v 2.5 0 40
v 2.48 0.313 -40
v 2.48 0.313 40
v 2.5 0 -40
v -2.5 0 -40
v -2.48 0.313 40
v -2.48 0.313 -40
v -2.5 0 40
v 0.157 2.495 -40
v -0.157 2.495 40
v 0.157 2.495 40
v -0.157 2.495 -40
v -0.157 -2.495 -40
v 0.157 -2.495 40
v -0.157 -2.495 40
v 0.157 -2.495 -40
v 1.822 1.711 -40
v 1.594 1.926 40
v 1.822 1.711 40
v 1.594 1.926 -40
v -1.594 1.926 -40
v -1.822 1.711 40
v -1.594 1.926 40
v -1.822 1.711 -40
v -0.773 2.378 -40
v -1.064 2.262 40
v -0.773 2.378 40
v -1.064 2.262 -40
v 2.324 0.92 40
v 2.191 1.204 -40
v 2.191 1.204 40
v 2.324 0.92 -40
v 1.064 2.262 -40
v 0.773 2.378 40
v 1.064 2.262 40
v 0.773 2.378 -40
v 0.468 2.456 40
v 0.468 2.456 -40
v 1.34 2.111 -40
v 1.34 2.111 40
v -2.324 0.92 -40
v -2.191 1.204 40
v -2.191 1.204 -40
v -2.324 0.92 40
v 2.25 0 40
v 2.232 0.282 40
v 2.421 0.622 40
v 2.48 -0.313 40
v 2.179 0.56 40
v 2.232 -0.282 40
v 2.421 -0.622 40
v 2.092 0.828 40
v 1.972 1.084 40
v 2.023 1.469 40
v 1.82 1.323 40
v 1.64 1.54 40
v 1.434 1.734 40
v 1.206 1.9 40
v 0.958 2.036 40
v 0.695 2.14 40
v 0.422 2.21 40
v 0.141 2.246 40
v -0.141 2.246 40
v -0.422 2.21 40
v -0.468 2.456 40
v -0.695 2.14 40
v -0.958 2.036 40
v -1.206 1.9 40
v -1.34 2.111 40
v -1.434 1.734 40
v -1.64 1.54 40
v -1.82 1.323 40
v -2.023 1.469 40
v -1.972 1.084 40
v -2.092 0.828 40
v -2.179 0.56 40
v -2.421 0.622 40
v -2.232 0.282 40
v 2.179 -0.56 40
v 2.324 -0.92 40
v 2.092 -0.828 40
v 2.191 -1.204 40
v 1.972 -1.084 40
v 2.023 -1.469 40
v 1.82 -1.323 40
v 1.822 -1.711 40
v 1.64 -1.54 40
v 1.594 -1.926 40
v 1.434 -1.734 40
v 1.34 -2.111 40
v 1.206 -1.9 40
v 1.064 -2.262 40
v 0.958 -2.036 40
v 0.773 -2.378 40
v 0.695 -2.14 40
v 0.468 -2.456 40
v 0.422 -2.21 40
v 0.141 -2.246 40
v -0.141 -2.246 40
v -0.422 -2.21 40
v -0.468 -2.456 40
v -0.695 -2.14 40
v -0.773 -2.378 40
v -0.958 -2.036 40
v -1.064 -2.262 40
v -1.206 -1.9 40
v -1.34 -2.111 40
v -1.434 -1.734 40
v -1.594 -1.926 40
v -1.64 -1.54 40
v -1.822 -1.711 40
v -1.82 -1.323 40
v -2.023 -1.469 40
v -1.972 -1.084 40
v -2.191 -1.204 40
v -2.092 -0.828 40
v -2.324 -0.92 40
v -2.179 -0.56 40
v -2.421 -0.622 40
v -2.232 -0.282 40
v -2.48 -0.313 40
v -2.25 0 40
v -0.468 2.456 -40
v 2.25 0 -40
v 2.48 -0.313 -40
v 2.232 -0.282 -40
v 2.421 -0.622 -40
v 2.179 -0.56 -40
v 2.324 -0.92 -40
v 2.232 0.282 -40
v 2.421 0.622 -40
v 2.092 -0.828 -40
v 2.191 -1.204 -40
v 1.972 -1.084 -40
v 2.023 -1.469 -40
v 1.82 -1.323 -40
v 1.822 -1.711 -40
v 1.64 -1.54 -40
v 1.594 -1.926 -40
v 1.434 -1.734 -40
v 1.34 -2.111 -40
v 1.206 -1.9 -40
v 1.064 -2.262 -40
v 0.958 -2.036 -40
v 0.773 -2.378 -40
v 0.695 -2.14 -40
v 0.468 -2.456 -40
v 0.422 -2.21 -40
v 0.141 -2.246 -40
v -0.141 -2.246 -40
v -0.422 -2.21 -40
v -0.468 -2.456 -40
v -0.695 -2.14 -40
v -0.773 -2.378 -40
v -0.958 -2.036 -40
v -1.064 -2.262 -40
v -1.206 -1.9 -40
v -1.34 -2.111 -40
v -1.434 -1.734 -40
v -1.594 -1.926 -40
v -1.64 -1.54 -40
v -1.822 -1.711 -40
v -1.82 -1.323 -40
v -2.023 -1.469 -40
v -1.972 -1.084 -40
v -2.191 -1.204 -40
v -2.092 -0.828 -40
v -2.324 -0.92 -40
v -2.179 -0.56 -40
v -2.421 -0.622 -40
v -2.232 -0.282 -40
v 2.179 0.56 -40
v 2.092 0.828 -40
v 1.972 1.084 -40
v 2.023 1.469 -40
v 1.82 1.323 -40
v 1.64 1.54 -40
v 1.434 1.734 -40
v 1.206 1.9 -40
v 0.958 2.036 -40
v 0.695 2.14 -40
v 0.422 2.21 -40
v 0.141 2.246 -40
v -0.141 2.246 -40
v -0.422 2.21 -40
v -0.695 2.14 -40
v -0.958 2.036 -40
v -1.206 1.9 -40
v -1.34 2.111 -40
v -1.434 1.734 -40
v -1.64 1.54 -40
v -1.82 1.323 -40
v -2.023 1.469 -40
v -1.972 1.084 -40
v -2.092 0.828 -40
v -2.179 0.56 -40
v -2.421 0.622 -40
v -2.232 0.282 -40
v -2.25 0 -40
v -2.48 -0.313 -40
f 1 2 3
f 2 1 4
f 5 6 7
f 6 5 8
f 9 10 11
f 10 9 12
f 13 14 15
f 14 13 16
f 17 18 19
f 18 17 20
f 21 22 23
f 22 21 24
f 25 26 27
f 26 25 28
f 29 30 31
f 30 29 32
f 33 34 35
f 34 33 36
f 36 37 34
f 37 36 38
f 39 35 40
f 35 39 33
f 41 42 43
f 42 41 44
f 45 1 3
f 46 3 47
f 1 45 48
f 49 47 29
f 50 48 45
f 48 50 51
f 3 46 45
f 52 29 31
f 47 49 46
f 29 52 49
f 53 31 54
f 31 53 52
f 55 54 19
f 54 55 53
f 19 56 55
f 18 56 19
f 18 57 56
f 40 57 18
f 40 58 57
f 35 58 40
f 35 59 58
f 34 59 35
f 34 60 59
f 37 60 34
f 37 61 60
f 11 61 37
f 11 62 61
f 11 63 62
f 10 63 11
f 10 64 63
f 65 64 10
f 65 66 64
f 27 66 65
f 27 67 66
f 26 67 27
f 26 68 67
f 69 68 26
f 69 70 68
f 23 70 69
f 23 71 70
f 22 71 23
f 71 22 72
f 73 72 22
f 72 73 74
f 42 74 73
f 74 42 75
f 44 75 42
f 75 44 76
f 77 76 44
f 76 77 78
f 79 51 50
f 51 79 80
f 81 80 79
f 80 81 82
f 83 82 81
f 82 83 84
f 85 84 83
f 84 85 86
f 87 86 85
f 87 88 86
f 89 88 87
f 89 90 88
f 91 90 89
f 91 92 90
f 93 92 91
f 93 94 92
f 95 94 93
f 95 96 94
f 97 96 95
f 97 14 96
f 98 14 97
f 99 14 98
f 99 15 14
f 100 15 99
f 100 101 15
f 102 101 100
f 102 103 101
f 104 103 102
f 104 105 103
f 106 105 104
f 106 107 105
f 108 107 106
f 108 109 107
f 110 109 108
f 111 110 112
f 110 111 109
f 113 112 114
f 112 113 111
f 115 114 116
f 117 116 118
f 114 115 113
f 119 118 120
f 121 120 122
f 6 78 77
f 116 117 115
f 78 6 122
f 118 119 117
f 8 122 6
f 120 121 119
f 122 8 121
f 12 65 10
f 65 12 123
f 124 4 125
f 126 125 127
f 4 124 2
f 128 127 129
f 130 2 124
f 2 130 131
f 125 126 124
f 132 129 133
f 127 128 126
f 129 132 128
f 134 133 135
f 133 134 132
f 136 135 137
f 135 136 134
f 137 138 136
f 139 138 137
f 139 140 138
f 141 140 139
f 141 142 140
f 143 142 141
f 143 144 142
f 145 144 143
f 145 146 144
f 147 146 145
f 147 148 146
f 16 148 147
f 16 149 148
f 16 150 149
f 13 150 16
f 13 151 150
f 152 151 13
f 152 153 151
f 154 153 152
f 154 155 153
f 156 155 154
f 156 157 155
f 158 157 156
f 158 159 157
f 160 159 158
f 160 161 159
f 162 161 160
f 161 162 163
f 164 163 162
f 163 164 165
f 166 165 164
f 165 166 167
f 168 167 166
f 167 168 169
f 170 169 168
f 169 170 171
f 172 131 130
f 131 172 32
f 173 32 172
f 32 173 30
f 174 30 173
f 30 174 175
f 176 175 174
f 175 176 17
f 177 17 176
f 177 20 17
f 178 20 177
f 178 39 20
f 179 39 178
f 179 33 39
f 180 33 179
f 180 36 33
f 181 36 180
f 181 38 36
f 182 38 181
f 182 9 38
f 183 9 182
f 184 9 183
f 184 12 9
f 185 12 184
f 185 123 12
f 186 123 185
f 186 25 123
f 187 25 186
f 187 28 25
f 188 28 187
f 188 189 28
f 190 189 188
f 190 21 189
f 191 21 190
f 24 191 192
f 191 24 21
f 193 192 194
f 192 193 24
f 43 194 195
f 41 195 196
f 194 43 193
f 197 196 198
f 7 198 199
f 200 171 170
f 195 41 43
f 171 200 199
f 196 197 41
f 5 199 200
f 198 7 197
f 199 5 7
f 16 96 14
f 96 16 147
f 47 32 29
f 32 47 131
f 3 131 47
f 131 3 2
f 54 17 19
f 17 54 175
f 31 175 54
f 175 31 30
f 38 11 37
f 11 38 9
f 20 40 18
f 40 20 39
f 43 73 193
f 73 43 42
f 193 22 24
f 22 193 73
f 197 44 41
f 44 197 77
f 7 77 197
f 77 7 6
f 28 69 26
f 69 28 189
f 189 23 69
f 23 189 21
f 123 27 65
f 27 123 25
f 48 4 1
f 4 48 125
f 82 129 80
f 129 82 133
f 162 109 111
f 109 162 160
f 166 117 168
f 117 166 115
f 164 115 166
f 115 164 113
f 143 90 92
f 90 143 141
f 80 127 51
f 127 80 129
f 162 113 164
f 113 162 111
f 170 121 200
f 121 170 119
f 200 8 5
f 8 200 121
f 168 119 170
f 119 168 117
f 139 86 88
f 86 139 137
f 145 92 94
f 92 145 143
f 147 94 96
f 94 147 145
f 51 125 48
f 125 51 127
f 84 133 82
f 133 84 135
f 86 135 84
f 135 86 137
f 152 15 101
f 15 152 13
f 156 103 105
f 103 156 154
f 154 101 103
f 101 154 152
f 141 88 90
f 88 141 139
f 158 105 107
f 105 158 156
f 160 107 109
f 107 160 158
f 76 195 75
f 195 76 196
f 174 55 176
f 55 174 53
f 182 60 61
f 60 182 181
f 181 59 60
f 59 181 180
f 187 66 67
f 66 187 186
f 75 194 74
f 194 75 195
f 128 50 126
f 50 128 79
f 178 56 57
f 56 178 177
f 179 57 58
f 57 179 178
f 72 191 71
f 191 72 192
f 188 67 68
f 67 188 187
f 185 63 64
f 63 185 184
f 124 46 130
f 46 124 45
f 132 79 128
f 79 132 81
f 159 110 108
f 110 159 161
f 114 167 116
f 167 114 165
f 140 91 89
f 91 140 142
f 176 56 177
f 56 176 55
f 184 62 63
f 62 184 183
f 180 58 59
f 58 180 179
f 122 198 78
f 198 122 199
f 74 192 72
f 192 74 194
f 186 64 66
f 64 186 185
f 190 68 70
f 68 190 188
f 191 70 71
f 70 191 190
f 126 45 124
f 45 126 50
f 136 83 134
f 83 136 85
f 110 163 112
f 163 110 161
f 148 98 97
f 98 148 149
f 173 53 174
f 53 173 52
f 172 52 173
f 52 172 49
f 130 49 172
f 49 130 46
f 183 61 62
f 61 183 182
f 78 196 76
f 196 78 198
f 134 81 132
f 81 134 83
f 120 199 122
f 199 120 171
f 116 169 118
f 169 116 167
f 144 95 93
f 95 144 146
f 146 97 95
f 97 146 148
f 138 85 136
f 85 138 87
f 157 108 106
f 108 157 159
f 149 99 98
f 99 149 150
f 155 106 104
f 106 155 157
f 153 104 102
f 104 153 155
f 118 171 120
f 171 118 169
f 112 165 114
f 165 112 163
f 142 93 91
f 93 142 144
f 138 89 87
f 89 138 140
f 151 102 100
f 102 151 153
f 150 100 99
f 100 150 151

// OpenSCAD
$fn = 50;


difference() {
	union() {
		translate(v = [0, 0, -40.0000000000]) {
			cylinder(h = 80, r = 2.5000000000);
		}
	}
	union() {
		translate(v = [0, 0, -100.0000000000]) {
			cylinder(h = 200, r = 2.2500000000);
		}
	}
}
